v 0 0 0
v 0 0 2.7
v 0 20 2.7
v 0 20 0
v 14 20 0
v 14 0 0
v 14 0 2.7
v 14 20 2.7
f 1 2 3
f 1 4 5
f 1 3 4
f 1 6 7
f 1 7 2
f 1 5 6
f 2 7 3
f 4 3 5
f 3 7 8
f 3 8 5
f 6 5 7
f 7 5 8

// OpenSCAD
/* Warning, this is a very basic generator with a lot of approximation 
input data : [QFP, TTX, 14x20x2.7mm, 128, , C, C04-17039C]
generated by com.zoubworld.electronics.cad.model3d.Basic
Date : Sun Feb 15 10:50:49 CET 2026
*/

//body
color("black")
translate([0,0,0])
cube([14.0,20.0,2.7], center=false);
